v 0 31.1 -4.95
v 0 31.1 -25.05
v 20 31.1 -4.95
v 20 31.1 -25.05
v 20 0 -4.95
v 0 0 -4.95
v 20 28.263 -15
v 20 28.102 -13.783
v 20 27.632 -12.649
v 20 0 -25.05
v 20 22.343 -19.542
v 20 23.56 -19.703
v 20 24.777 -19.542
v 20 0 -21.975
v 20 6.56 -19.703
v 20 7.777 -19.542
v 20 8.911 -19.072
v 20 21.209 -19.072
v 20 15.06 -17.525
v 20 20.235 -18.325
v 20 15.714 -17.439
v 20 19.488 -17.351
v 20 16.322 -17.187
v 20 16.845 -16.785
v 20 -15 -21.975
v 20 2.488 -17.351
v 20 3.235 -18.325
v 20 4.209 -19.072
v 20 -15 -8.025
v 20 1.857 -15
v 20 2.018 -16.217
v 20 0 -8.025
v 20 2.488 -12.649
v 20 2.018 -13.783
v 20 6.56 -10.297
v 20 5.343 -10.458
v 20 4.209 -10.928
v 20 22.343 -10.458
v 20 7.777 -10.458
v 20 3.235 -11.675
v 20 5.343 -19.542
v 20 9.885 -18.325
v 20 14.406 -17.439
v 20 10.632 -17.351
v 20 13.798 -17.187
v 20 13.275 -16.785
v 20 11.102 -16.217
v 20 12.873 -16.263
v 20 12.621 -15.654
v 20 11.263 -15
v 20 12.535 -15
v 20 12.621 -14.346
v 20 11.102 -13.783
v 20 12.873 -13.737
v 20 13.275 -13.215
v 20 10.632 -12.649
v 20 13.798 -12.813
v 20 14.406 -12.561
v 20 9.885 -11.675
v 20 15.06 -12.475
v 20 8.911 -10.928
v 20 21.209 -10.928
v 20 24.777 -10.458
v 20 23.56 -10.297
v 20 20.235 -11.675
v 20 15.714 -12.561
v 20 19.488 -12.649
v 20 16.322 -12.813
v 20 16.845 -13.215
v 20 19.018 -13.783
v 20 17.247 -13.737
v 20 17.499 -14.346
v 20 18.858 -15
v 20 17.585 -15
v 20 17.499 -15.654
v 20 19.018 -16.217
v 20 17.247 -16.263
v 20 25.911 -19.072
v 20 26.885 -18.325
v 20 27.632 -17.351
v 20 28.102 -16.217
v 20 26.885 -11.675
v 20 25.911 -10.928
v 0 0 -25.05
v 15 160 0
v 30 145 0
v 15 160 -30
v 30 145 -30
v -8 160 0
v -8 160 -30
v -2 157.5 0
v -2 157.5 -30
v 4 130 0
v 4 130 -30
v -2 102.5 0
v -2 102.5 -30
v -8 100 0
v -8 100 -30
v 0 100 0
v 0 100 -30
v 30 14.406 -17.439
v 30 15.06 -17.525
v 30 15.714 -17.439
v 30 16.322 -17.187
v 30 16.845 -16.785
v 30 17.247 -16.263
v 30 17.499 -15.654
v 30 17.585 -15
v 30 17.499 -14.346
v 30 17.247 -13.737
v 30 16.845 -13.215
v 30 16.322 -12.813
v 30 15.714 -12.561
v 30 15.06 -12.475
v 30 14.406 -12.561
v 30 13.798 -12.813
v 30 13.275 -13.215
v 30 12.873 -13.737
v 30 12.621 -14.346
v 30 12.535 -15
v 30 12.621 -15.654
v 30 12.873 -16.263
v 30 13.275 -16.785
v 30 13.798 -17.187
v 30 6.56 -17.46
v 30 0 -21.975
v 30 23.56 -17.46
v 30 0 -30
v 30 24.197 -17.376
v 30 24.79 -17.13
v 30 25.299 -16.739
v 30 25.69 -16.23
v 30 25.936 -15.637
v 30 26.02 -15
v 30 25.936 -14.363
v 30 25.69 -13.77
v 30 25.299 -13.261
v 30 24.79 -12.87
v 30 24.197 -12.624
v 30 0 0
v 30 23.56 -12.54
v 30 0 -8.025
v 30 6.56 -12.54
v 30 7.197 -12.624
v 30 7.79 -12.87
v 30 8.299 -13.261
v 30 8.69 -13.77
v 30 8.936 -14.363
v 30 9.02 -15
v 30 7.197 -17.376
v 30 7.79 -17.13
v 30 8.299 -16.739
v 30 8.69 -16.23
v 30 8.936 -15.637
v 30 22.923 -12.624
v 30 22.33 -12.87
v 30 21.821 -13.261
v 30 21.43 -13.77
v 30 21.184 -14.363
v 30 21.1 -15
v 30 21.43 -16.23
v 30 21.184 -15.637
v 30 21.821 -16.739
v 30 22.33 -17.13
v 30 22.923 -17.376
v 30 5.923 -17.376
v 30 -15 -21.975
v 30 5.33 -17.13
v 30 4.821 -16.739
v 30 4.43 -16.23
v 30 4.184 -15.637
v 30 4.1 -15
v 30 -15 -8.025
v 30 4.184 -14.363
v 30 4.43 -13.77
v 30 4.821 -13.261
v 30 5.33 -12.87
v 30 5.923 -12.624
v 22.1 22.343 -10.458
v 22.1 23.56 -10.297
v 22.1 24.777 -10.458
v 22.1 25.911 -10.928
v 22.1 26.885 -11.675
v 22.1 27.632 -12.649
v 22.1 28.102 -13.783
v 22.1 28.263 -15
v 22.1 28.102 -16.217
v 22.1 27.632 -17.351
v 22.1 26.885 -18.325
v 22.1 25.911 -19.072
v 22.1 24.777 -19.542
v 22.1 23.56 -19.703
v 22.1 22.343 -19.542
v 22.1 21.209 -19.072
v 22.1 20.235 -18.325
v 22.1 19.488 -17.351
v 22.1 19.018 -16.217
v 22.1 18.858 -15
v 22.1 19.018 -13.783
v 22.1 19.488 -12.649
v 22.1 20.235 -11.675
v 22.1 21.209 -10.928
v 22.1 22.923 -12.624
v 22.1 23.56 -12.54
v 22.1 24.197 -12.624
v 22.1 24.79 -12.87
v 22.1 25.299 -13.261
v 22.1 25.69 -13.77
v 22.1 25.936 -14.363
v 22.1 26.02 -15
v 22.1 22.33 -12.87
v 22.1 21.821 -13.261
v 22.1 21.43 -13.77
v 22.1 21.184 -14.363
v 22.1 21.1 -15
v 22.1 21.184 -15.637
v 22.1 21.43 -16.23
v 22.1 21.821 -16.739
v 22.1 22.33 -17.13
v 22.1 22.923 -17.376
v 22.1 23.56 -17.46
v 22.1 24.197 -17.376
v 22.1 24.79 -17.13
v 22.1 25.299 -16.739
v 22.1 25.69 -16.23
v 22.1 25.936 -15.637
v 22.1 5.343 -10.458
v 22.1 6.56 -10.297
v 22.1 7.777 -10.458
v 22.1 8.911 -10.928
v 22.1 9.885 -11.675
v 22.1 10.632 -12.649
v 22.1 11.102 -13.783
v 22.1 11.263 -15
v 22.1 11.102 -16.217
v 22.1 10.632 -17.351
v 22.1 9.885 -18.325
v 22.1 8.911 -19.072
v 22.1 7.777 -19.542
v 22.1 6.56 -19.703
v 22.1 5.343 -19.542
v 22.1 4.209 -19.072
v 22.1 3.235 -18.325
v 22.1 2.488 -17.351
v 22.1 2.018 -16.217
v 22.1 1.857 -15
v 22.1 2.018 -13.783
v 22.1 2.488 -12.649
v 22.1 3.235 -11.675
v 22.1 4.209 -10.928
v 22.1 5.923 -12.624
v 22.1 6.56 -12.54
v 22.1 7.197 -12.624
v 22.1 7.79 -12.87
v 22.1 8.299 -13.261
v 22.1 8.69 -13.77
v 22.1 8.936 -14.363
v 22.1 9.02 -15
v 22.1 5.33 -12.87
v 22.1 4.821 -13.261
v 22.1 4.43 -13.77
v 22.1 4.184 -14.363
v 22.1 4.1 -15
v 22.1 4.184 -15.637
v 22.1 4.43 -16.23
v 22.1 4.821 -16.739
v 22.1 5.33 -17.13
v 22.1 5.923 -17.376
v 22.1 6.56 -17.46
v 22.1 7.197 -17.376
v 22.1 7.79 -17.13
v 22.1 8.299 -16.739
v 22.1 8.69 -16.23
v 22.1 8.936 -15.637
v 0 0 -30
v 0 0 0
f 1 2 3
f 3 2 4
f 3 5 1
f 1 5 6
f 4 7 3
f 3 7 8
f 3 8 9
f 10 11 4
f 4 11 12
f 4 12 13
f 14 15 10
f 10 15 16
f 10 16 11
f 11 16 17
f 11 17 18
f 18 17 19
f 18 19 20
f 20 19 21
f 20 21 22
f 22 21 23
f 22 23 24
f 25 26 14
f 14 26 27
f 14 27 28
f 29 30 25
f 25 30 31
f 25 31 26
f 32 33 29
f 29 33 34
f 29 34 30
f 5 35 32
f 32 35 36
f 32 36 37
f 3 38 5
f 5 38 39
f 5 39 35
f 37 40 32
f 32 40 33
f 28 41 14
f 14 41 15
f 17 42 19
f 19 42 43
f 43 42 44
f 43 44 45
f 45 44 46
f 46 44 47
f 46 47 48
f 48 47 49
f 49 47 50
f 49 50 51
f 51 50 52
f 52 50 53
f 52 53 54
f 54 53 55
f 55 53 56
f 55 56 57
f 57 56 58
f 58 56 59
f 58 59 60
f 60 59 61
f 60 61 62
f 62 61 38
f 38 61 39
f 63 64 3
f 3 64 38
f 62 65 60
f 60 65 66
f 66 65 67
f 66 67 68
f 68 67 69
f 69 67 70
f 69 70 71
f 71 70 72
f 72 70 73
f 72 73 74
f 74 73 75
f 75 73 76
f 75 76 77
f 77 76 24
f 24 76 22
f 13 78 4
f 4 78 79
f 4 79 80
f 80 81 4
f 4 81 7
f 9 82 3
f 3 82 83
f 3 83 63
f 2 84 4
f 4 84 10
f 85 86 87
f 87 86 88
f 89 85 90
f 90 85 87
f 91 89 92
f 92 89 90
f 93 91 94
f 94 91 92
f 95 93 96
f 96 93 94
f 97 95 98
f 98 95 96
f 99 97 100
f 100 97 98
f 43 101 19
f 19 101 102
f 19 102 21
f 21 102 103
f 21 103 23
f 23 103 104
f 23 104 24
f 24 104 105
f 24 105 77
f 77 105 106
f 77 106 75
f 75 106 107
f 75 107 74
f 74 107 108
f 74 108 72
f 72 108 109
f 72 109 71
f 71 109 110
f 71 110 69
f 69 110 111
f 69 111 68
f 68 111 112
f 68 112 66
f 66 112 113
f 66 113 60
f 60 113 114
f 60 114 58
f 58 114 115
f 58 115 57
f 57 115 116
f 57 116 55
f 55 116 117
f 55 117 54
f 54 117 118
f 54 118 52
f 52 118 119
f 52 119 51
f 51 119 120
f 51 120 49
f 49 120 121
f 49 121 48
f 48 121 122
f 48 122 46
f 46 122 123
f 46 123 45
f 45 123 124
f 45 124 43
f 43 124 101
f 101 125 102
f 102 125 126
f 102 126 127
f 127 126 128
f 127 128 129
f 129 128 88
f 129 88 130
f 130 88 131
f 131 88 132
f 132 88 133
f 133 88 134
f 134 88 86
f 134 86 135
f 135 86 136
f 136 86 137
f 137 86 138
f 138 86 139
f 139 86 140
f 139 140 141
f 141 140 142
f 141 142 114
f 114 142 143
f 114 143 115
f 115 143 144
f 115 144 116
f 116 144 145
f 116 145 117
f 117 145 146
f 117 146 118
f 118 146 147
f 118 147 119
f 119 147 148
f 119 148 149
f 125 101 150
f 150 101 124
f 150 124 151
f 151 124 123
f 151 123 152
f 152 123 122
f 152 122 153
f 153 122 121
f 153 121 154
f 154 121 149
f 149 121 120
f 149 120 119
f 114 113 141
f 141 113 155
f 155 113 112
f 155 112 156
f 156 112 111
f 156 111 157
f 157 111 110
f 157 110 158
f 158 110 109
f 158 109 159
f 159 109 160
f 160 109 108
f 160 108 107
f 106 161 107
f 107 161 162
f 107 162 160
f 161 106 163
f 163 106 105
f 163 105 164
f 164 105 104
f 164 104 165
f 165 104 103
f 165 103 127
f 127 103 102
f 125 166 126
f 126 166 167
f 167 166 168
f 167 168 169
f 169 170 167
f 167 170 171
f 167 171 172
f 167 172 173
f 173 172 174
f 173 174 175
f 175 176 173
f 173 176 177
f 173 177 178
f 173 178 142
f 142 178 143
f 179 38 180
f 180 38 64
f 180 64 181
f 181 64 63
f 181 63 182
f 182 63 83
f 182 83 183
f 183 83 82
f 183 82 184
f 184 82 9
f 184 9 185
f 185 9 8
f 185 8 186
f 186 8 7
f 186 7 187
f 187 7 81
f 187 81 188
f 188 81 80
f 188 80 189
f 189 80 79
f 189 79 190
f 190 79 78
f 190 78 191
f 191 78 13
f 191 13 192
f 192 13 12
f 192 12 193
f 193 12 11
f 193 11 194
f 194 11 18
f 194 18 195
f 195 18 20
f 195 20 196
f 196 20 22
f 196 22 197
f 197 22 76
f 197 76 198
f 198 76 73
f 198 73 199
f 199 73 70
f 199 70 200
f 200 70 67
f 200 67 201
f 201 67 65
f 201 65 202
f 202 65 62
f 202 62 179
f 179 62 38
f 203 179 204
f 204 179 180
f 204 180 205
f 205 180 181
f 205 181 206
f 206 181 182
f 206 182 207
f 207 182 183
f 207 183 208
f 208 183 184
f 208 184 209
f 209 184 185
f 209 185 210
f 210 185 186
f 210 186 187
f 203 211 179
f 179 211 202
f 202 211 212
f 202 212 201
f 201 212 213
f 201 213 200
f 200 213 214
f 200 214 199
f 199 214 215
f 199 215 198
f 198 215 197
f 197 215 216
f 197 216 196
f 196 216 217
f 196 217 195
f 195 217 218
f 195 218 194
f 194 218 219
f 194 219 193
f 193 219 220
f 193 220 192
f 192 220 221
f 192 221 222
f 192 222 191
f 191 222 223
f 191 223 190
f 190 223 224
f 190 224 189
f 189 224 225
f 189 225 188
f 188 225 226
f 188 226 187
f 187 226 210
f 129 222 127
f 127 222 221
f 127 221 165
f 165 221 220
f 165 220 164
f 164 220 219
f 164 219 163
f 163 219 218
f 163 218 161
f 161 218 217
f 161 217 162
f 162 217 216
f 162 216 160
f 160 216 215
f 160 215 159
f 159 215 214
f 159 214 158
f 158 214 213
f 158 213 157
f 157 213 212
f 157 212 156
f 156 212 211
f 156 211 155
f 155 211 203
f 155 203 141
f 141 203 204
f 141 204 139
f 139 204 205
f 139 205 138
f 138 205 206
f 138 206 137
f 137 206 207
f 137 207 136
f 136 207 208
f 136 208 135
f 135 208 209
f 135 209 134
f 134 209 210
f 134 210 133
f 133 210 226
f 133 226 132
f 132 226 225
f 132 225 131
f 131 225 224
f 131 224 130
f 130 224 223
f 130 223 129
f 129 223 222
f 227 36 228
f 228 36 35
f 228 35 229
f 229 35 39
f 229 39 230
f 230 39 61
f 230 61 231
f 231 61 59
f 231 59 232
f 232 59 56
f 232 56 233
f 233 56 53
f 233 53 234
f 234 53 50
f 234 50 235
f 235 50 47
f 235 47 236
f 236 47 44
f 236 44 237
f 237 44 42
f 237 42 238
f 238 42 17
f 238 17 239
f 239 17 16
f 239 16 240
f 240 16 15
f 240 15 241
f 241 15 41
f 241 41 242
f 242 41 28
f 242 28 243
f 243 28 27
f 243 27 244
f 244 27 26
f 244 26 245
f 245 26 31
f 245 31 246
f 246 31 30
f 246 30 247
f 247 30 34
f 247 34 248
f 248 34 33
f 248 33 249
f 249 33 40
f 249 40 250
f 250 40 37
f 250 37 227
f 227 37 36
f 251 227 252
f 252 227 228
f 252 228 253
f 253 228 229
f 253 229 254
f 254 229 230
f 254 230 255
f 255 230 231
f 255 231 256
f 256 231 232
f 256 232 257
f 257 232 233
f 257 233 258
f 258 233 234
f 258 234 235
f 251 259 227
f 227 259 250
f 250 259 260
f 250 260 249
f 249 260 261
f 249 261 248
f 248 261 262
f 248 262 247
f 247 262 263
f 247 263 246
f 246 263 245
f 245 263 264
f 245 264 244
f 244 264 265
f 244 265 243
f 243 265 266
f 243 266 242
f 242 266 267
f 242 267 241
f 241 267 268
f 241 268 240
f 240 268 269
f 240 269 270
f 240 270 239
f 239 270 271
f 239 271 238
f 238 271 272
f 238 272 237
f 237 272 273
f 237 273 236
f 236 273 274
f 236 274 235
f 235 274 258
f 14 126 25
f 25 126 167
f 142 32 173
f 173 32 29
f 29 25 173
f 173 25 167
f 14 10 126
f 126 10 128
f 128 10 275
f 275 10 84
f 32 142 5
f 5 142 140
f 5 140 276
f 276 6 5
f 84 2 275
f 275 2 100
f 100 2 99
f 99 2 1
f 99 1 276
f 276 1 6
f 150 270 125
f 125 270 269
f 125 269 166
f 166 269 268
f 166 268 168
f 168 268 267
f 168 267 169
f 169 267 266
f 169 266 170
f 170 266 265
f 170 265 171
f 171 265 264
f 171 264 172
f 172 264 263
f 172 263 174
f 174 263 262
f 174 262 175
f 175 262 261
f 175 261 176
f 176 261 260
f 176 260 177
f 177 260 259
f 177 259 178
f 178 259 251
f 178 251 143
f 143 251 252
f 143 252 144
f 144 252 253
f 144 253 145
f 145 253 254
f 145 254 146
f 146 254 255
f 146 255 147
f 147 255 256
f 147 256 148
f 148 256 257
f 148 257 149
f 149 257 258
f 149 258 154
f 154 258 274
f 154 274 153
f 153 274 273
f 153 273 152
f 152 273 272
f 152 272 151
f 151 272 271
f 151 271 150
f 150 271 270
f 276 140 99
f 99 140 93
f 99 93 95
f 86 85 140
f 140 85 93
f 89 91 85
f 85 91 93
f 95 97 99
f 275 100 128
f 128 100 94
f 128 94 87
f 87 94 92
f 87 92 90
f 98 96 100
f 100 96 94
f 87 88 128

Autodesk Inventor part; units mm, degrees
ref_plane "YZ Plane" through (0, 0, 0) normal (1, 0, 0) x (0, 1, 0)
ref_plane "XZ Plane" through (0, 0, 0) normal (0, 1, 0) x (-1, 0, 0)
ref_plane "XY Plane" through (0, 0, 0) normal (0, 0, 1) x (1, 0, 0)
sketch "Sketch1" plane through (0, 0, 0) normal (0, 0, 1) x (1, 0, 0)
  line L0 (0, 0) -> (25, 0)
  line L1 (25, 0) -> (25, 40)
  line L2 (25, 40) -> (0, 40)
  line L3 (0, 40) -> (0, 0)
  dimension "d1" = 25
  dimension "d2" = 40
  dimension "d3" = 25
extrude "Extrusion1" add sketch "Sketch1" against normal blind 30
sketch "Sketch2" plane through (25, 0, 0) normal (1, 0, 0) x (0, 0, -1)
  line L0 (0, 0) -> (30, 0) projected
  circle A0 centre (15, 6.56) radius 2.46
extrude "Extrusion2" cut sketch "Sketch2" against normal blind 30
sketch "Sketch3" plane through (0, 0, 0) normal (-1, 0, 0) x (0, 0, 1)
  line L0 (0, 0) -> (-30, 0) projected
  line L1 (-25.05, 0) -> (-4.95, 0)
  line L2 (-4.95, 0) -> (-4.95, 33.12)
  line L3 (-4.95, 33.12) -> (-25.05, 33.12)
  line L4 (-25.05, 33.12) -> (-25.05, 0)
  dimension "d11" = 20.1
extrude "Extrusion3" cut sketch "Sketch3" against normal blind 20
sketch "Sketch4" plane through (0, 0, 0) normal (0, -1, 0) x (1, 0, 0)
  line L0 (20, -4.95) -> (20, -25.05) projected
  line L1 (20, -15) -> (25, -15)
  line L2 (25, 0) -> (25, -30) projected
  line L3 (20, -8.025) -> (25, -8.025)
  line L4 (25, -8.025) -> (25, -21.975)
  line L5 (25, -21.975) -> (20, -21.975)
  line L6 (20, -21.975) -> (20, -8.025)
  line L7 (20, -8.025) -> (25, -21.975) construction
  line L8 (25, -8.025) -> (20, -21.975) construction
  line L9 (25, -12.54) -> (25, -17.46) projected
  point P0 (0, 0)
  point P1 (22.5, -15)
  dimension "d14" = 13.95
extrude "Extrusion4" add sketch "Sketch4" along normal blind 15
sketch "Sketch5" plane through (20, 0, 0) normal (-1, 0, 0) x (0, 0, 1)
  circle A0 centre (-15, 6.56) radius 2.46 projected
  circle A1 centre (-15, 6.56) radius 4.7025
  circle A2 centre (-15, 6.56) radius 2.46 projected
  circle A3 centre (-15, 6.56) radius 2.46
  point P0 (0, 0)
  dimension "d17" = 9.405
extrude "Extrusion5" cut sketch "Sketch5" against normal blind 2.1
sketch "Sketch6" plane through (25, 0, 0) normal (1, 0, 0) x (0, 0, -1)
  circle A0 centre (15, 6.56) radius 4.7025 projected
  line L0 (15, 6.56) -> (15, 23.56)
  circle A1 centre (15, 23.56) radius 2.46
  point P0 (0, 0)
  dimension "d20" = 17
  dimension "d21" = 4.92
extrude "Extrusion6" cut sketch "Sketch6" against normal blind 10 contours A1
sketch "Sketch7" plane through (20, 0, 0) normal (-1, 0, 0) x (0, 0, 1)
  circle A0 centre (-15, 23.56) radius 2.46 projected
  circle A1 centre (-15, 23.56) radius 4.7025
  point P0 (0, 0)
  dimension "d24" = 9.405
extrude "Extrusion7" cut sketch "Sketch7" against normal blind 2.1
sketch "Sketch9" plane through (25, 0, 0) normal (1, 0, 0) x (0, 0, -1)
  circle A0 centre (15, 6.56) radius 2.46 projected
  circle A1 centre (15, 6.56) radius 2.46
  circle A2 centre (15, 23.56) radius 2.46 projected
  circle A3 centre (15, 23.56) radius 2.46
  line L0 (30, 40) -> (30, 0) projected
  line L1 (30, 0) -> (30, 40)
  line L2 (30, 40) -> (0, 40)
  line L3 (0, 40) -> (0, 0)
  line L4 (0, 0) -> (8.025, 0) projected
  line L5 (21.975, 0) -> (21.975, -15)
  line L6 (21.975, -15) -> (8.025, -15)
  line L7 (8.025, -15) -> (8.025, 0)
  line L8 (0, 0) -> (8.025, 0)
  line L9 (21.975, 0) -> (30, 0)
extrude "Extrusion8" add sketch "Sketch9" along normal blind 5
sketch "Sketch10" plane through (0, 40, 0) normal (0, 1, 0) x (1, 0, 0)
  line L0 (0, 30) -> (30, 30) projected
  line L1 (30, 0) -> (0, 0) projected
  line L2 (0, 30) -> (30, 30)
  line L3 (30, 30) -> (30, 0)
  line L4 (30, 0) -> (0, 0)
  line L5 (0, 0) -> (0, 30)
extrude "Extrusion9" add sketch "Sketch10" along normal blind 30
sketch "Sketch12" plane through (30, 0, 0) normal (1, 0, 0) x (0, 0, -1)
  circle A0 centre (15, 6.56) radius 2.46 projected
  line L0 (15, 6.56) -> (15, 15.06)
  circle A1 centre (15, 15.06) radius 2.525
  point P0 (0, 0)
  dimension "d31" = 8.5
  dimension "d33" = 5.05
extrude "Extrusion10" cut sketch "Sketch12" against normal blind 30 contours A1
sketch "Sketch14" plane through (0, 0, 0) normal (0, 0, 1) x (1, 0, 0)
  line L0 (30, 70) -> (0, 70) projected
  line L1 (0, 100) -> (-8, 100)
  line L2 (30, 0) -> (30, 70) projected
  line L3 (30, 118) -> (30, 70)
  line L4 (30, 105) -> (30, 100)
  line L5 (0, 70) -> (30, 70) projected
  line L6 (0, 70) -> (0, 100)
  line L7 (30, 122.5) -> (30, 118)
  line L8 (30, 70) -> (30, 145)
  line L9 (-2, 157.5) -> (-8, 160)
  line L10 (-2, 102.5) -> (-8, 100)
  line L11 (4, 130) -> (-2, 102.5)
  line L12 (4, 130) -> (-2, 157.5)
  line L13 (-8, 160) -> (15, 160)
  line L14 (30, 145) -> (15, 160)
  point P0 (0, 0)
  dimension "d47" = 30
extrude "Extrusion12" add sketch "Sketch14" against normal blind 30
sketch "Sketch15" plane through (0, 0, -25.05) normal (-1, 0, 0) x (0, 0, 1)
  line L0 (0, 33.12) -> (20.1, 33.12) projected
  line L1 (20.1, 33.12) -> (20.1, 0) projected
  line L2 (0, 33.12) -> (20.1, 33.12)
  line L3 (20.1, 33.12) -> (20.1, 31.1)
  line L4 (20.1, 31.1) -> (0, 31.1)
  line L5 (0, 31.1) -> (0, 33.12)
  point P0 (25.05, 0)
  dimension "d57" = 2.02
extrude "Extrusion13" add sketch "Sketch15" against normal blind 20
sketch "Sketch27" plane through (0, 0, 0) normal (0, 0, 1) x (1, 0, 0)
  point P0 (0, 0)
properties part number "55mm_x_30mm"
